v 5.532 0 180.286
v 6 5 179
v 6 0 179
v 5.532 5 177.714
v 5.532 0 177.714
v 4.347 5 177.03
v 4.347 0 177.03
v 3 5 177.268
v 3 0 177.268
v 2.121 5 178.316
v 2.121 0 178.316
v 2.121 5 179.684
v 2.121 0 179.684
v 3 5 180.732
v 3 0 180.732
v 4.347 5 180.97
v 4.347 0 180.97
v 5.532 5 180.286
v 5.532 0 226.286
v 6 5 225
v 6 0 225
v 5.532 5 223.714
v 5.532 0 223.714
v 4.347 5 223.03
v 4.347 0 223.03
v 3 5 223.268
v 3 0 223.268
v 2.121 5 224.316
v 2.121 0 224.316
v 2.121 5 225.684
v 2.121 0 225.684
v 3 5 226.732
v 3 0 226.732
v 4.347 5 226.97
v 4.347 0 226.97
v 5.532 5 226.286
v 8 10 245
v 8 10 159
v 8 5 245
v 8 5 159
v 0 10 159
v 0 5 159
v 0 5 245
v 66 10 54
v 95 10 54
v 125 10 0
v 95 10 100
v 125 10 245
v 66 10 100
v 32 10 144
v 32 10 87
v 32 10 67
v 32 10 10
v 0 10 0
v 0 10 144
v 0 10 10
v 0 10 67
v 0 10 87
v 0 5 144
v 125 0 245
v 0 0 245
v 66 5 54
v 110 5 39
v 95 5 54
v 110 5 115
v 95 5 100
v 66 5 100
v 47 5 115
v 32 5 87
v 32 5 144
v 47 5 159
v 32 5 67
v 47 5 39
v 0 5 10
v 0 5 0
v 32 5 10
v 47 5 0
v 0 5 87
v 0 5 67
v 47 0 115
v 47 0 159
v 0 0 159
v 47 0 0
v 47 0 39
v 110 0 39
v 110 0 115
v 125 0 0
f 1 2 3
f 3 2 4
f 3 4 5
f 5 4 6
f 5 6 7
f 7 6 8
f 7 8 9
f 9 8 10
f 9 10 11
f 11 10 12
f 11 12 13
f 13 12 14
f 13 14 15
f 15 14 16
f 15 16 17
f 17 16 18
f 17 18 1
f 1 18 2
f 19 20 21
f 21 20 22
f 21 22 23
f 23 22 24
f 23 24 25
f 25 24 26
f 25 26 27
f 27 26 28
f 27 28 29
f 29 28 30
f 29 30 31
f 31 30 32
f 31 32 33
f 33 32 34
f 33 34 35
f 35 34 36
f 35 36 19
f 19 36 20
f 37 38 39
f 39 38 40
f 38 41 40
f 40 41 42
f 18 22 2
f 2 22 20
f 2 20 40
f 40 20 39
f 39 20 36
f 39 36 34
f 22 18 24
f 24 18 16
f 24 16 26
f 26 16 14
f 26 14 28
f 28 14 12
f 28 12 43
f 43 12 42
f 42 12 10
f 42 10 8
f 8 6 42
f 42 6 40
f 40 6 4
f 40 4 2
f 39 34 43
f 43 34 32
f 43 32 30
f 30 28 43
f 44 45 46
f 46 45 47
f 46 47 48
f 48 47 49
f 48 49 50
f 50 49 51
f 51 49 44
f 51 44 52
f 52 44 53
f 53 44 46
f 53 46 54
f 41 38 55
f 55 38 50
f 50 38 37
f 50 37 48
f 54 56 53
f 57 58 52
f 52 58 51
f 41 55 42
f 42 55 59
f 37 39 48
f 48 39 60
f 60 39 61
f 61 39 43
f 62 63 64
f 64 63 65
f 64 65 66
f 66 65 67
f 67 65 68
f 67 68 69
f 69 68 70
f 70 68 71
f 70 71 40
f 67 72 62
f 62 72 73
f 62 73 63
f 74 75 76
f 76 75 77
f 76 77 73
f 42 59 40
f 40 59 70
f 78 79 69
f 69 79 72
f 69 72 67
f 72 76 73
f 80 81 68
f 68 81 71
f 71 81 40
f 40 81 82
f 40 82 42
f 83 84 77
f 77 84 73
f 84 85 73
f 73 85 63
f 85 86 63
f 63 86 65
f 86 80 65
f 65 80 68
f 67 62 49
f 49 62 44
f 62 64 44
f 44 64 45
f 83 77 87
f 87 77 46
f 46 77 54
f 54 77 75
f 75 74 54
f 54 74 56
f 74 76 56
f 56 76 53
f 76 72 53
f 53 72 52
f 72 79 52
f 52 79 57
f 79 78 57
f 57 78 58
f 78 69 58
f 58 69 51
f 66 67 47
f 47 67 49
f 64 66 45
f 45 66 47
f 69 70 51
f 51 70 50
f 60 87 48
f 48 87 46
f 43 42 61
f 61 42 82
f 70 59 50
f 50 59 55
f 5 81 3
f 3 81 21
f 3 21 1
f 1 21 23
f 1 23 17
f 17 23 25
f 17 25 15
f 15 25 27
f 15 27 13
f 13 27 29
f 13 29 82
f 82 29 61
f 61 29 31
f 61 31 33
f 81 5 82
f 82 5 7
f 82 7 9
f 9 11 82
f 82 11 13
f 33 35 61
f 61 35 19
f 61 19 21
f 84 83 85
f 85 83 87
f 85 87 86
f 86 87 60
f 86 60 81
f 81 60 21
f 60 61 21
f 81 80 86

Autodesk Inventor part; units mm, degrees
ref_plane "YZ Plane" through (0, 0, 0) normal (1, 0, 0) x (0, 1, 0)
ref_plane "XZ Plane" through (0, 0, 0) normal (0, 1, 0) x (-1, 0, 0)
ref_plane "XY Plane" through (0, 0, 0) normal (0, 0, 1) x (1, 0, 0)
sketch "草图1" plane through (0, 0, 0) normal (0, 1, 0) x (-1, 0, 0)
  line L0 (-95, 54) -> (-66, 54)
  line L1 (-66, 54) -> (-66, 100)
  line L2 (-66, 100) -> (-95, 100)
  line L3 (-95, 100) -> (-95, 54)
  line L4 (-32, 144) -> (-32, 87)
  line L5 (-125, 0) -> (-125, 245)
  line L6 (-32, 87) -> (25, 87)
  line L7 (-125, 245) -> (-125, -245)
  line L8 (125, -245) -> (125, 245)
  line L9 (25, 144) -> (-32, 144)
  line L10 (-125, 245) -> (0, 245)
  line L11 (125, 245) -> (-125, 245)
  line L12 (25, 67) -> (-32, 67)
  line L13 (0, 0) -> (125, 0)
  line L14 (-32, 67) -> (-32, 10)
  line L15 (-32, 10) -> (25, 10)
  line L16 (3.5058, 0) -> (-3.4421, 0)
  line L17 (-66, -100) -> (-66, -54)
  line L18 (-95, -54) -> (-95, -100)
  line L19 (-95, -100) -> (-66, -100)
  line L20 (25, 87) -> (25, 144)
  line L21 (0, 245) -> (0, 0)
  line L22 (0, 245) -> (0, 0)
  line L23 (125, 0) -> (125, 245)
  line L24 (100, 15) -> (70, 15)
  line L25 (100, -15) -> (100, 15)
  line L26 (70, 15) -> (70, -15)
  line L27 (25, 10) -> (25, 67)
  line L28 (-125, -245) -> (125, -245)
  line L29 (-32, -87) -> (-32, -144)
  line L30 (-32, -10) -> (-32, -67)
  line L31 (25, -87) -> (-32, -87)
  line L32 (-32, -67) -> (25, -67)
  line L33 (25, -10) -> (-32, -10)
  line L34 (-32, -144) -> (25, -144)
  line L35 (-125, 0) -> (-125, -245)
  line L36 (25, -144) -> (25, -87)
  line L37 (25, -67) -> (25, -10)
  circle A0 centre (65, -182) radius 10
  line L38 (70, -15) -> (100, -15)
  line L39 (0, 0) -> (125, 0)
  line L40 (0, -245) -> (0, 0)
  line L41 (0, -245) -> (0, 0)
  line L42 (125, -245) -> (0, -245)
  line L43 (125, 0) -> (125, -245)
  line L44 (-125, -245) -> (0, -245)
  line L45 (0, 3) -> (0, -5)
  line L46 (-66, -54) -> (-95, -54)
  line L47 (0, 0) -> (-125, 0)
  line L48 (0, 0) -> (-125, 0)
  circle A1 centre (57.5, 194.9904) radius 1.5
  circle A2 centre (57.5, 169.0096) radius 1.5
  circle A3 centre (65, 182) radius 10
  circle A4 centre (65, 182) radius 15
  circle A5 centre (80, 182) radius 1.5
  line L49 (125, 245) -> (0, 245)
  circle A6 centre (65, -182) radius 15
  circle A7 centre (80, -182) radius 1.5
  circle A8 centre (57.5, -169.0096) radius 1.5
  circle A9 centre (57.5, -194.9904) radius 1.5
  point P0 (0, 144)
  point P1 (0, 10)
  point P2 (0, 67)
  point P3 (0, 87)
  dimension "d35" = 30
  dimension "d38" = 30
  dimension "d4" = 490
  dimension "d5" = 250
  dimension "d6" = 57
  dimension "d7" = 57
  dimension "d8" = 57
  dimension "d9" = 57
  dimension "d10" = 57
  dimension "d11" = 57
  dimension "d12" = 57
  dimension "d13" = 57
  dimension "d14" = 101
  dimension "d15" = 20
  dimension "d16" = 20
  dimension "d17" = 20
  dimension "d18" = 93
  dimension "d19" = 29
  dimension "d20" = 46
  dimension "d21" = 46
  dimension "d22" = 145
  dimension "d23" = 108
  dimension "d24" = 30
  dimension "d25" = 30
  dimension "d26" = 30
  dimension "d27" = 25
  dimension "d28" = 230
  dimension "d29" = 20
  dimension "d30" = 63
  dimension "d31" = 60
  dimension "d32" = 20
  dimension "d33" = 63
  dimension "d34" = 60
  dimension "d36" = 3
  dimension "d37" = 360
  dimension "d39" = 3
  dimension "d40" = 360
extrude "拉伸1" add sketch "草图1" along normal blind 10 contours L4 L6 L21 L12 L14 L15 L16 L47 L5 L10 L9
sketch "草图2" plane through (0, 0, 0) normal (0, -1, 0) x (1, 0, 0)
  line L0 (125, 0) -> (0, 0) projected
  line L1 (47, 159) -> (0, 159)
  line L2 (0, 159) -> (0, 0)
  line L3 (0, 0) -> (47, 0)
  line L4 (47, 0) -> (47, 159)
  line L5 (32, 10) -> (32, 67) projected
  line L6 (32, 144) -> (0, 144) projected
  line L7 (110, 115) -> (47, 115)
  line L8 (47, 115) -> (47, 39)
  line L9 (47, 39) -> (110, 39)
  line L10 (110, 39) -> (110, 115)
  line L11 (95, 54) -> (95, 100) projected
  line L12 (66, 100) -> (66, 54) projected
  line L13 (95, 100) -> (66, 100) projected
  line L14 (66, 54) -> (95, 54) projected
  dimension "d43" = 15
  dimension "d44" = 15
  dimension "d45" = 15
  dimension "d46" = 19
  dimension "d47" = 15
  dimension "d48" = 15
extrude "拉伸2" cut sketch "草图2" against normal blind 5
sketch "草图3" plane through (0, 10, 0) normal (0, 1, 0) x (1, 0, 0)
  line L0 (0, -159) -> (47, -159) projected
  line L1 (0, -245) -> (125, -245) projected
  line L2 (0, -159) -> (8, -159)
  line L3 (8, -159) -> (8, -245)
  line L4 (8, -245) -> (0, -245)
  line L5 (0, -245) -> (0, -159)
  point P0 (0, 0)
  dimension "d51" = 8
extrude "拉伸3" cut sketch "草图3" against normal blind 5
sketch "草图4" plane through (0, 5, 0) normal (0, 1, 0) x (1, 0, 0)
  circle A0 centre (4, -225) radius 2
  circle A1 centre (4, -179) radius 2
  line L0 (8, -159) -> (8, -245) projected
  line L1 (8, -245) -> (0, -245) projected
  line L2 (0, -159) -> (8, -159) projected
  point P0 (0, 0)
  dimension "d54" = 4
  dimension "d56" = 4
  dimension "d58" = 4
  dimension "d59" = 4
  dimension "d60" = 20
  dimension "d65" = 20
extrude "拉伸4" cut sketch "草图4" against normal blind 5
properties part number "top_3"
